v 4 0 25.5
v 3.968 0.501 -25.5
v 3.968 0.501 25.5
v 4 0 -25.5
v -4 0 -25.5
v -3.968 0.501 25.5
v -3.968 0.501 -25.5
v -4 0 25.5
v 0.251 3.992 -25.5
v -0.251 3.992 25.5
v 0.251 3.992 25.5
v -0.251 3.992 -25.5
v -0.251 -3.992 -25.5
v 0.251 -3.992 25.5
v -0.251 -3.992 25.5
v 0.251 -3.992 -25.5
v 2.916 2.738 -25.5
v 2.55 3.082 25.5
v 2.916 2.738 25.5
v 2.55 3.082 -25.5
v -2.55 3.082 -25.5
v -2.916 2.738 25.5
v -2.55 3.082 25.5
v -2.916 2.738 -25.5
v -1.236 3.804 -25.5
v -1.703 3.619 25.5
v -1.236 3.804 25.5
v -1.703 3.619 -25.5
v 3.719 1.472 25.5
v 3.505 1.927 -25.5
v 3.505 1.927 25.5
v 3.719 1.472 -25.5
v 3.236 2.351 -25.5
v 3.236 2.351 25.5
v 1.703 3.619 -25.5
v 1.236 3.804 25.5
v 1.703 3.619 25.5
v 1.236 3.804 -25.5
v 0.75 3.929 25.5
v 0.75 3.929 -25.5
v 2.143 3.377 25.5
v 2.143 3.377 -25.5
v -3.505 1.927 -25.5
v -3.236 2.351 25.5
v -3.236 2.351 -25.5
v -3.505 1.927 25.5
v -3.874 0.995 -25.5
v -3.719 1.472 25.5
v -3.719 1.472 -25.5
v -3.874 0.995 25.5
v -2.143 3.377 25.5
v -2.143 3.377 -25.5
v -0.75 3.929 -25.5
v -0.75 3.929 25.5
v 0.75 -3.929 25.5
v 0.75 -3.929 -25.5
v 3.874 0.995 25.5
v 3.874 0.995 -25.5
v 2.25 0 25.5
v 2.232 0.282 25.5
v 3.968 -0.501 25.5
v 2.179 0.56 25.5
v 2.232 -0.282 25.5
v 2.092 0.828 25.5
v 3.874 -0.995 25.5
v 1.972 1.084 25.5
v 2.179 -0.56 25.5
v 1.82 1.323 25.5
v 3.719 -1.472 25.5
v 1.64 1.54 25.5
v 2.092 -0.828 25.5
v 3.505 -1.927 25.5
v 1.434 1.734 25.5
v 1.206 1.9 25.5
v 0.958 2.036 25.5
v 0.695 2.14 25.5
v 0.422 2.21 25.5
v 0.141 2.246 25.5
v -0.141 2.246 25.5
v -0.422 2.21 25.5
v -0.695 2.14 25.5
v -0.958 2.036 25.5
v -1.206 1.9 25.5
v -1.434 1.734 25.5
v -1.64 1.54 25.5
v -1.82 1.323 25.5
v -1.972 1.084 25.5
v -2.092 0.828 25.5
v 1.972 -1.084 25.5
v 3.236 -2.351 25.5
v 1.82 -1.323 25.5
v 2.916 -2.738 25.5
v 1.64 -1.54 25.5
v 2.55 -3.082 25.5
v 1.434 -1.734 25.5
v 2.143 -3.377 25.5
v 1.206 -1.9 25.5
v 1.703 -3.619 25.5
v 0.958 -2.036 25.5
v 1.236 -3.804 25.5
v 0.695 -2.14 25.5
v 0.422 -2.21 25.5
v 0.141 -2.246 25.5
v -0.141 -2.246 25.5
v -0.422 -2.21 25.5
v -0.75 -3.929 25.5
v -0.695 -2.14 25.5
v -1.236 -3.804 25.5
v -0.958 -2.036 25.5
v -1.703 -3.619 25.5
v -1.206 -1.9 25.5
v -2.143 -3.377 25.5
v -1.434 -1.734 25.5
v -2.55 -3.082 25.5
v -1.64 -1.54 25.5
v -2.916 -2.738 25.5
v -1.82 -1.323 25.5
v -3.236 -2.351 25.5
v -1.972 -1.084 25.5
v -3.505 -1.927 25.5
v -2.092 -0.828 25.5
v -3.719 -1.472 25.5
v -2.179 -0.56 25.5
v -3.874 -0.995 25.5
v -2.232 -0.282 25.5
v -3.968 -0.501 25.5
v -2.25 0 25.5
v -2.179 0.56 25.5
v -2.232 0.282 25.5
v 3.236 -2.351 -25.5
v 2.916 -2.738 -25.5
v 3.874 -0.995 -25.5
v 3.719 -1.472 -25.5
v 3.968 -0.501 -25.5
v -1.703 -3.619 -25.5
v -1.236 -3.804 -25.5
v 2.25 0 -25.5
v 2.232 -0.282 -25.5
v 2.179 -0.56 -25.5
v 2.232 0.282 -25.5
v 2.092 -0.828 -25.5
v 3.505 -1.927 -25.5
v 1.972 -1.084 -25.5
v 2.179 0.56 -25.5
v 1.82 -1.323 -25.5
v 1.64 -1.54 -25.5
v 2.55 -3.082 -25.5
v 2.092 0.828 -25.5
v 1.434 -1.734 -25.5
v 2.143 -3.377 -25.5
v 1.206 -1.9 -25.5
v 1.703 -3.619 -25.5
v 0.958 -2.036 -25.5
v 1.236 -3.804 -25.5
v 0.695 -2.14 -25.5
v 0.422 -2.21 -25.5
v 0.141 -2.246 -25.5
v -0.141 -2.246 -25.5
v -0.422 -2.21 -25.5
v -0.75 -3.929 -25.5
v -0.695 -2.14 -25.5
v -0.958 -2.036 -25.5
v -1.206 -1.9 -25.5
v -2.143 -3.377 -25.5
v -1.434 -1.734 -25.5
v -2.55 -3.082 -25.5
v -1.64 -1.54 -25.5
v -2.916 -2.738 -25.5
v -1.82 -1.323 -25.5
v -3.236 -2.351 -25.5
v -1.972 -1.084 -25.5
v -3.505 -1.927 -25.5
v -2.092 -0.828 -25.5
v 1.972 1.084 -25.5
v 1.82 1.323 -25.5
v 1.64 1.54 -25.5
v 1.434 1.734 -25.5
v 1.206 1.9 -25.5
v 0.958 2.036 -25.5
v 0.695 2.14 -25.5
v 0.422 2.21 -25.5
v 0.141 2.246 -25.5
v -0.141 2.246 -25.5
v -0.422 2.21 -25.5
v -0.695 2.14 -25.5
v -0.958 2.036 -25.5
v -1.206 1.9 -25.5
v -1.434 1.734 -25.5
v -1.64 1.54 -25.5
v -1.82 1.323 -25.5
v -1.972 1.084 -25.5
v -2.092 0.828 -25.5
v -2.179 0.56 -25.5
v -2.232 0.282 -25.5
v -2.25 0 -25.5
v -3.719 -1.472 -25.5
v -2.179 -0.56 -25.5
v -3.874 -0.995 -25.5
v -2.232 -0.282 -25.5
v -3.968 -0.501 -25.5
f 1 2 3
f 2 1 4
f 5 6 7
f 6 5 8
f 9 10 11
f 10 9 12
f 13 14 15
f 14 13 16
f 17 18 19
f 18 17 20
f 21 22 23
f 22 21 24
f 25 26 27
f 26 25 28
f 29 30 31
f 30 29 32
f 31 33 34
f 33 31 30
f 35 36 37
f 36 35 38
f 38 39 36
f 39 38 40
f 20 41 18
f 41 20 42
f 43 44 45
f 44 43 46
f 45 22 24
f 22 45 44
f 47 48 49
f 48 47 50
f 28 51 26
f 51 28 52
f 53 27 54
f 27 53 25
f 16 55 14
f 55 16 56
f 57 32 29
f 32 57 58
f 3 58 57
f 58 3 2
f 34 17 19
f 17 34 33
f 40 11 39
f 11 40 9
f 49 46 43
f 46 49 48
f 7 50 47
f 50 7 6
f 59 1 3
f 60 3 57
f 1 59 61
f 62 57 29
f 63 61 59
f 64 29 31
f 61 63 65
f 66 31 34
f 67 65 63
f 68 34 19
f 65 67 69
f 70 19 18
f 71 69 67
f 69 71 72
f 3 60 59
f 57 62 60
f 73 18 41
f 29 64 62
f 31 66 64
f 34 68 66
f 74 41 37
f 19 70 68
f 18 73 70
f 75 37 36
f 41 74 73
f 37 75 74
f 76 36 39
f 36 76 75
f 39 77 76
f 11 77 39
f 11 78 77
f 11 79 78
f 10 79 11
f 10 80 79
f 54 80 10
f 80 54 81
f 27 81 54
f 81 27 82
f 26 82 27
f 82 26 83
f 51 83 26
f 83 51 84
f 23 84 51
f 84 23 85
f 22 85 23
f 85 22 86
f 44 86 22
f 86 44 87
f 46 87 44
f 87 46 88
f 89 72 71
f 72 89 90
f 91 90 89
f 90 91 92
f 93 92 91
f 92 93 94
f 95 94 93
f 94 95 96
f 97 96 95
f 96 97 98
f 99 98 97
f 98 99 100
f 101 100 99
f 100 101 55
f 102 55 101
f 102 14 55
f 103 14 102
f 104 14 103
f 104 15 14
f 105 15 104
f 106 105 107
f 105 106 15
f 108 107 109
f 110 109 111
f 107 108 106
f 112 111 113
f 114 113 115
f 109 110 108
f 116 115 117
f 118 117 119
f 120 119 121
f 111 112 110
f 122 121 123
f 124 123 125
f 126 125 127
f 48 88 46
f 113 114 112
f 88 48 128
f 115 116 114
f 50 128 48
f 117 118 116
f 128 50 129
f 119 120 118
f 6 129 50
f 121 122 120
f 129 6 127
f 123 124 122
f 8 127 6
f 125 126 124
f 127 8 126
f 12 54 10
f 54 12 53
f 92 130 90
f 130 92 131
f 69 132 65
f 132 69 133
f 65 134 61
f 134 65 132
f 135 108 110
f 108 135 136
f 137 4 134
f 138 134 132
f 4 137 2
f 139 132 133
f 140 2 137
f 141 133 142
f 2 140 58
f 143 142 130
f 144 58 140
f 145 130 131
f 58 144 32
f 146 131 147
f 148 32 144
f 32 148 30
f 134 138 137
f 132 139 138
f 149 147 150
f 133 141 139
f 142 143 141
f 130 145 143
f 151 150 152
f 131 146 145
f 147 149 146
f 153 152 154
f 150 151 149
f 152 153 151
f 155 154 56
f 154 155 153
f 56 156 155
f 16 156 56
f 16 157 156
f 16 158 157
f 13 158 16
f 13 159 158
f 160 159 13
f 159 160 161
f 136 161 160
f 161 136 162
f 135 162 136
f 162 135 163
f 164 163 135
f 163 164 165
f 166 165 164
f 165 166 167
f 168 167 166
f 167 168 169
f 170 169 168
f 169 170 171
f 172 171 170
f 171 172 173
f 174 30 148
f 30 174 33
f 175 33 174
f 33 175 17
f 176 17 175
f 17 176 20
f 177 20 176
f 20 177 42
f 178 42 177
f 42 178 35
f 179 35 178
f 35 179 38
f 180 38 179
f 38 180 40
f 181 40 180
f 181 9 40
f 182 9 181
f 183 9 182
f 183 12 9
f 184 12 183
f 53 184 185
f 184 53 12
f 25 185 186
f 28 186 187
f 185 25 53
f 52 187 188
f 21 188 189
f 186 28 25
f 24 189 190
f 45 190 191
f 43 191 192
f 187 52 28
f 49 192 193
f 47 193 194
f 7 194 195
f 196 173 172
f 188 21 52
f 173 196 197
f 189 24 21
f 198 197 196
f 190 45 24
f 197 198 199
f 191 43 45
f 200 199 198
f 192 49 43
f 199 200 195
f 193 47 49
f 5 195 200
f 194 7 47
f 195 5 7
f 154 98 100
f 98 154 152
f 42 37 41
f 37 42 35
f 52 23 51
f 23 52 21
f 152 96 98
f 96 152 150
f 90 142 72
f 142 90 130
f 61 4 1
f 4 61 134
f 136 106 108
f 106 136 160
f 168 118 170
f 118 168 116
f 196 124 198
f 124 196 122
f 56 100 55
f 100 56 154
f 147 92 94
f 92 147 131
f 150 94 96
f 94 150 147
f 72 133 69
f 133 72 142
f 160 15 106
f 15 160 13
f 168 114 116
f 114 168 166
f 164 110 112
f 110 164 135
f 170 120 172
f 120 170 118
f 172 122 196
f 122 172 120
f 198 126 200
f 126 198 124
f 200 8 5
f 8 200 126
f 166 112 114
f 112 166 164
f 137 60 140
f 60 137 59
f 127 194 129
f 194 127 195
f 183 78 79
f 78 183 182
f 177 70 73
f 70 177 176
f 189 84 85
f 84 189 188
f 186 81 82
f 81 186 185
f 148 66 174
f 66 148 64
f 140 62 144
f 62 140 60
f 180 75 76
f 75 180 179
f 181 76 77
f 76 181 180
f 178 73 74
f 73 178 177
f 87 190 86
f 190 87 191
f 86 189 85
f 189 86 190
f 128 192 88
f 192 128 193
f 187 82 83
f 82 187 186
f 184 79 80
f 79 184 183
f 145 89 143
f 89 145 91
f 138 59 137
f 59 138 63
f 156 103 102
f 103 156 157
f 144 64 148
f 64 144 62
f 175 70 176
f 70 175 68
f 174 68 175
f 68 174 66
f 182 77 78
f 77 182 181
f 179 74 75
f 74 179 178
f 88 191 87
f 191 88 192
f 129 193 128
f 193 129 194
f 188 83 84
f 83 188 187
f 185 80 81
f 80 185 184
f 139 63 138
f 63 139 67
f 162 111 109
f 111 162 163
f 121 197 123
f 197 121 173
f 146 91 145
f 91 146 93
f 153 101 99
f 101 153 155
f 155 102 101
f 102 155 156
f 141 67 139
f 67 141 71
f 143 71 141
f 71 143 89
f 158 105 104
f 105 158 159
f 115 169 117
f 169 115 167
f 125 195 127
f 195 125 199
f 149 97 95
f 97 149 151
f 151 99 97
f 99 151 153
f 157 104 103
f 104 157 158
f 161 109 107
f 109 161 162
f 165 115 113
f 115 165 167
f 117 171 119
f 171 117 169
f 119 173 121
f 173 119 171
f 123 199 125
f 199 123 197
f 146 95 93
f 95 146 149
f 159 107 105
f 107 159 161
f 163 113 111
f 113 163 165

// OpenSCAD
$fn = 50;


difference() {
	union() {
		translate(v = [0, 0, -25.5000000000]) {
			cylinder(h = 51, r = 4.0000000000);
		}
	}
	union() {
		translate(v = [0, 0, -100.0000000000]) {
			cylinder(h = 200, r = 2.2500000000);
		}
	}
}
